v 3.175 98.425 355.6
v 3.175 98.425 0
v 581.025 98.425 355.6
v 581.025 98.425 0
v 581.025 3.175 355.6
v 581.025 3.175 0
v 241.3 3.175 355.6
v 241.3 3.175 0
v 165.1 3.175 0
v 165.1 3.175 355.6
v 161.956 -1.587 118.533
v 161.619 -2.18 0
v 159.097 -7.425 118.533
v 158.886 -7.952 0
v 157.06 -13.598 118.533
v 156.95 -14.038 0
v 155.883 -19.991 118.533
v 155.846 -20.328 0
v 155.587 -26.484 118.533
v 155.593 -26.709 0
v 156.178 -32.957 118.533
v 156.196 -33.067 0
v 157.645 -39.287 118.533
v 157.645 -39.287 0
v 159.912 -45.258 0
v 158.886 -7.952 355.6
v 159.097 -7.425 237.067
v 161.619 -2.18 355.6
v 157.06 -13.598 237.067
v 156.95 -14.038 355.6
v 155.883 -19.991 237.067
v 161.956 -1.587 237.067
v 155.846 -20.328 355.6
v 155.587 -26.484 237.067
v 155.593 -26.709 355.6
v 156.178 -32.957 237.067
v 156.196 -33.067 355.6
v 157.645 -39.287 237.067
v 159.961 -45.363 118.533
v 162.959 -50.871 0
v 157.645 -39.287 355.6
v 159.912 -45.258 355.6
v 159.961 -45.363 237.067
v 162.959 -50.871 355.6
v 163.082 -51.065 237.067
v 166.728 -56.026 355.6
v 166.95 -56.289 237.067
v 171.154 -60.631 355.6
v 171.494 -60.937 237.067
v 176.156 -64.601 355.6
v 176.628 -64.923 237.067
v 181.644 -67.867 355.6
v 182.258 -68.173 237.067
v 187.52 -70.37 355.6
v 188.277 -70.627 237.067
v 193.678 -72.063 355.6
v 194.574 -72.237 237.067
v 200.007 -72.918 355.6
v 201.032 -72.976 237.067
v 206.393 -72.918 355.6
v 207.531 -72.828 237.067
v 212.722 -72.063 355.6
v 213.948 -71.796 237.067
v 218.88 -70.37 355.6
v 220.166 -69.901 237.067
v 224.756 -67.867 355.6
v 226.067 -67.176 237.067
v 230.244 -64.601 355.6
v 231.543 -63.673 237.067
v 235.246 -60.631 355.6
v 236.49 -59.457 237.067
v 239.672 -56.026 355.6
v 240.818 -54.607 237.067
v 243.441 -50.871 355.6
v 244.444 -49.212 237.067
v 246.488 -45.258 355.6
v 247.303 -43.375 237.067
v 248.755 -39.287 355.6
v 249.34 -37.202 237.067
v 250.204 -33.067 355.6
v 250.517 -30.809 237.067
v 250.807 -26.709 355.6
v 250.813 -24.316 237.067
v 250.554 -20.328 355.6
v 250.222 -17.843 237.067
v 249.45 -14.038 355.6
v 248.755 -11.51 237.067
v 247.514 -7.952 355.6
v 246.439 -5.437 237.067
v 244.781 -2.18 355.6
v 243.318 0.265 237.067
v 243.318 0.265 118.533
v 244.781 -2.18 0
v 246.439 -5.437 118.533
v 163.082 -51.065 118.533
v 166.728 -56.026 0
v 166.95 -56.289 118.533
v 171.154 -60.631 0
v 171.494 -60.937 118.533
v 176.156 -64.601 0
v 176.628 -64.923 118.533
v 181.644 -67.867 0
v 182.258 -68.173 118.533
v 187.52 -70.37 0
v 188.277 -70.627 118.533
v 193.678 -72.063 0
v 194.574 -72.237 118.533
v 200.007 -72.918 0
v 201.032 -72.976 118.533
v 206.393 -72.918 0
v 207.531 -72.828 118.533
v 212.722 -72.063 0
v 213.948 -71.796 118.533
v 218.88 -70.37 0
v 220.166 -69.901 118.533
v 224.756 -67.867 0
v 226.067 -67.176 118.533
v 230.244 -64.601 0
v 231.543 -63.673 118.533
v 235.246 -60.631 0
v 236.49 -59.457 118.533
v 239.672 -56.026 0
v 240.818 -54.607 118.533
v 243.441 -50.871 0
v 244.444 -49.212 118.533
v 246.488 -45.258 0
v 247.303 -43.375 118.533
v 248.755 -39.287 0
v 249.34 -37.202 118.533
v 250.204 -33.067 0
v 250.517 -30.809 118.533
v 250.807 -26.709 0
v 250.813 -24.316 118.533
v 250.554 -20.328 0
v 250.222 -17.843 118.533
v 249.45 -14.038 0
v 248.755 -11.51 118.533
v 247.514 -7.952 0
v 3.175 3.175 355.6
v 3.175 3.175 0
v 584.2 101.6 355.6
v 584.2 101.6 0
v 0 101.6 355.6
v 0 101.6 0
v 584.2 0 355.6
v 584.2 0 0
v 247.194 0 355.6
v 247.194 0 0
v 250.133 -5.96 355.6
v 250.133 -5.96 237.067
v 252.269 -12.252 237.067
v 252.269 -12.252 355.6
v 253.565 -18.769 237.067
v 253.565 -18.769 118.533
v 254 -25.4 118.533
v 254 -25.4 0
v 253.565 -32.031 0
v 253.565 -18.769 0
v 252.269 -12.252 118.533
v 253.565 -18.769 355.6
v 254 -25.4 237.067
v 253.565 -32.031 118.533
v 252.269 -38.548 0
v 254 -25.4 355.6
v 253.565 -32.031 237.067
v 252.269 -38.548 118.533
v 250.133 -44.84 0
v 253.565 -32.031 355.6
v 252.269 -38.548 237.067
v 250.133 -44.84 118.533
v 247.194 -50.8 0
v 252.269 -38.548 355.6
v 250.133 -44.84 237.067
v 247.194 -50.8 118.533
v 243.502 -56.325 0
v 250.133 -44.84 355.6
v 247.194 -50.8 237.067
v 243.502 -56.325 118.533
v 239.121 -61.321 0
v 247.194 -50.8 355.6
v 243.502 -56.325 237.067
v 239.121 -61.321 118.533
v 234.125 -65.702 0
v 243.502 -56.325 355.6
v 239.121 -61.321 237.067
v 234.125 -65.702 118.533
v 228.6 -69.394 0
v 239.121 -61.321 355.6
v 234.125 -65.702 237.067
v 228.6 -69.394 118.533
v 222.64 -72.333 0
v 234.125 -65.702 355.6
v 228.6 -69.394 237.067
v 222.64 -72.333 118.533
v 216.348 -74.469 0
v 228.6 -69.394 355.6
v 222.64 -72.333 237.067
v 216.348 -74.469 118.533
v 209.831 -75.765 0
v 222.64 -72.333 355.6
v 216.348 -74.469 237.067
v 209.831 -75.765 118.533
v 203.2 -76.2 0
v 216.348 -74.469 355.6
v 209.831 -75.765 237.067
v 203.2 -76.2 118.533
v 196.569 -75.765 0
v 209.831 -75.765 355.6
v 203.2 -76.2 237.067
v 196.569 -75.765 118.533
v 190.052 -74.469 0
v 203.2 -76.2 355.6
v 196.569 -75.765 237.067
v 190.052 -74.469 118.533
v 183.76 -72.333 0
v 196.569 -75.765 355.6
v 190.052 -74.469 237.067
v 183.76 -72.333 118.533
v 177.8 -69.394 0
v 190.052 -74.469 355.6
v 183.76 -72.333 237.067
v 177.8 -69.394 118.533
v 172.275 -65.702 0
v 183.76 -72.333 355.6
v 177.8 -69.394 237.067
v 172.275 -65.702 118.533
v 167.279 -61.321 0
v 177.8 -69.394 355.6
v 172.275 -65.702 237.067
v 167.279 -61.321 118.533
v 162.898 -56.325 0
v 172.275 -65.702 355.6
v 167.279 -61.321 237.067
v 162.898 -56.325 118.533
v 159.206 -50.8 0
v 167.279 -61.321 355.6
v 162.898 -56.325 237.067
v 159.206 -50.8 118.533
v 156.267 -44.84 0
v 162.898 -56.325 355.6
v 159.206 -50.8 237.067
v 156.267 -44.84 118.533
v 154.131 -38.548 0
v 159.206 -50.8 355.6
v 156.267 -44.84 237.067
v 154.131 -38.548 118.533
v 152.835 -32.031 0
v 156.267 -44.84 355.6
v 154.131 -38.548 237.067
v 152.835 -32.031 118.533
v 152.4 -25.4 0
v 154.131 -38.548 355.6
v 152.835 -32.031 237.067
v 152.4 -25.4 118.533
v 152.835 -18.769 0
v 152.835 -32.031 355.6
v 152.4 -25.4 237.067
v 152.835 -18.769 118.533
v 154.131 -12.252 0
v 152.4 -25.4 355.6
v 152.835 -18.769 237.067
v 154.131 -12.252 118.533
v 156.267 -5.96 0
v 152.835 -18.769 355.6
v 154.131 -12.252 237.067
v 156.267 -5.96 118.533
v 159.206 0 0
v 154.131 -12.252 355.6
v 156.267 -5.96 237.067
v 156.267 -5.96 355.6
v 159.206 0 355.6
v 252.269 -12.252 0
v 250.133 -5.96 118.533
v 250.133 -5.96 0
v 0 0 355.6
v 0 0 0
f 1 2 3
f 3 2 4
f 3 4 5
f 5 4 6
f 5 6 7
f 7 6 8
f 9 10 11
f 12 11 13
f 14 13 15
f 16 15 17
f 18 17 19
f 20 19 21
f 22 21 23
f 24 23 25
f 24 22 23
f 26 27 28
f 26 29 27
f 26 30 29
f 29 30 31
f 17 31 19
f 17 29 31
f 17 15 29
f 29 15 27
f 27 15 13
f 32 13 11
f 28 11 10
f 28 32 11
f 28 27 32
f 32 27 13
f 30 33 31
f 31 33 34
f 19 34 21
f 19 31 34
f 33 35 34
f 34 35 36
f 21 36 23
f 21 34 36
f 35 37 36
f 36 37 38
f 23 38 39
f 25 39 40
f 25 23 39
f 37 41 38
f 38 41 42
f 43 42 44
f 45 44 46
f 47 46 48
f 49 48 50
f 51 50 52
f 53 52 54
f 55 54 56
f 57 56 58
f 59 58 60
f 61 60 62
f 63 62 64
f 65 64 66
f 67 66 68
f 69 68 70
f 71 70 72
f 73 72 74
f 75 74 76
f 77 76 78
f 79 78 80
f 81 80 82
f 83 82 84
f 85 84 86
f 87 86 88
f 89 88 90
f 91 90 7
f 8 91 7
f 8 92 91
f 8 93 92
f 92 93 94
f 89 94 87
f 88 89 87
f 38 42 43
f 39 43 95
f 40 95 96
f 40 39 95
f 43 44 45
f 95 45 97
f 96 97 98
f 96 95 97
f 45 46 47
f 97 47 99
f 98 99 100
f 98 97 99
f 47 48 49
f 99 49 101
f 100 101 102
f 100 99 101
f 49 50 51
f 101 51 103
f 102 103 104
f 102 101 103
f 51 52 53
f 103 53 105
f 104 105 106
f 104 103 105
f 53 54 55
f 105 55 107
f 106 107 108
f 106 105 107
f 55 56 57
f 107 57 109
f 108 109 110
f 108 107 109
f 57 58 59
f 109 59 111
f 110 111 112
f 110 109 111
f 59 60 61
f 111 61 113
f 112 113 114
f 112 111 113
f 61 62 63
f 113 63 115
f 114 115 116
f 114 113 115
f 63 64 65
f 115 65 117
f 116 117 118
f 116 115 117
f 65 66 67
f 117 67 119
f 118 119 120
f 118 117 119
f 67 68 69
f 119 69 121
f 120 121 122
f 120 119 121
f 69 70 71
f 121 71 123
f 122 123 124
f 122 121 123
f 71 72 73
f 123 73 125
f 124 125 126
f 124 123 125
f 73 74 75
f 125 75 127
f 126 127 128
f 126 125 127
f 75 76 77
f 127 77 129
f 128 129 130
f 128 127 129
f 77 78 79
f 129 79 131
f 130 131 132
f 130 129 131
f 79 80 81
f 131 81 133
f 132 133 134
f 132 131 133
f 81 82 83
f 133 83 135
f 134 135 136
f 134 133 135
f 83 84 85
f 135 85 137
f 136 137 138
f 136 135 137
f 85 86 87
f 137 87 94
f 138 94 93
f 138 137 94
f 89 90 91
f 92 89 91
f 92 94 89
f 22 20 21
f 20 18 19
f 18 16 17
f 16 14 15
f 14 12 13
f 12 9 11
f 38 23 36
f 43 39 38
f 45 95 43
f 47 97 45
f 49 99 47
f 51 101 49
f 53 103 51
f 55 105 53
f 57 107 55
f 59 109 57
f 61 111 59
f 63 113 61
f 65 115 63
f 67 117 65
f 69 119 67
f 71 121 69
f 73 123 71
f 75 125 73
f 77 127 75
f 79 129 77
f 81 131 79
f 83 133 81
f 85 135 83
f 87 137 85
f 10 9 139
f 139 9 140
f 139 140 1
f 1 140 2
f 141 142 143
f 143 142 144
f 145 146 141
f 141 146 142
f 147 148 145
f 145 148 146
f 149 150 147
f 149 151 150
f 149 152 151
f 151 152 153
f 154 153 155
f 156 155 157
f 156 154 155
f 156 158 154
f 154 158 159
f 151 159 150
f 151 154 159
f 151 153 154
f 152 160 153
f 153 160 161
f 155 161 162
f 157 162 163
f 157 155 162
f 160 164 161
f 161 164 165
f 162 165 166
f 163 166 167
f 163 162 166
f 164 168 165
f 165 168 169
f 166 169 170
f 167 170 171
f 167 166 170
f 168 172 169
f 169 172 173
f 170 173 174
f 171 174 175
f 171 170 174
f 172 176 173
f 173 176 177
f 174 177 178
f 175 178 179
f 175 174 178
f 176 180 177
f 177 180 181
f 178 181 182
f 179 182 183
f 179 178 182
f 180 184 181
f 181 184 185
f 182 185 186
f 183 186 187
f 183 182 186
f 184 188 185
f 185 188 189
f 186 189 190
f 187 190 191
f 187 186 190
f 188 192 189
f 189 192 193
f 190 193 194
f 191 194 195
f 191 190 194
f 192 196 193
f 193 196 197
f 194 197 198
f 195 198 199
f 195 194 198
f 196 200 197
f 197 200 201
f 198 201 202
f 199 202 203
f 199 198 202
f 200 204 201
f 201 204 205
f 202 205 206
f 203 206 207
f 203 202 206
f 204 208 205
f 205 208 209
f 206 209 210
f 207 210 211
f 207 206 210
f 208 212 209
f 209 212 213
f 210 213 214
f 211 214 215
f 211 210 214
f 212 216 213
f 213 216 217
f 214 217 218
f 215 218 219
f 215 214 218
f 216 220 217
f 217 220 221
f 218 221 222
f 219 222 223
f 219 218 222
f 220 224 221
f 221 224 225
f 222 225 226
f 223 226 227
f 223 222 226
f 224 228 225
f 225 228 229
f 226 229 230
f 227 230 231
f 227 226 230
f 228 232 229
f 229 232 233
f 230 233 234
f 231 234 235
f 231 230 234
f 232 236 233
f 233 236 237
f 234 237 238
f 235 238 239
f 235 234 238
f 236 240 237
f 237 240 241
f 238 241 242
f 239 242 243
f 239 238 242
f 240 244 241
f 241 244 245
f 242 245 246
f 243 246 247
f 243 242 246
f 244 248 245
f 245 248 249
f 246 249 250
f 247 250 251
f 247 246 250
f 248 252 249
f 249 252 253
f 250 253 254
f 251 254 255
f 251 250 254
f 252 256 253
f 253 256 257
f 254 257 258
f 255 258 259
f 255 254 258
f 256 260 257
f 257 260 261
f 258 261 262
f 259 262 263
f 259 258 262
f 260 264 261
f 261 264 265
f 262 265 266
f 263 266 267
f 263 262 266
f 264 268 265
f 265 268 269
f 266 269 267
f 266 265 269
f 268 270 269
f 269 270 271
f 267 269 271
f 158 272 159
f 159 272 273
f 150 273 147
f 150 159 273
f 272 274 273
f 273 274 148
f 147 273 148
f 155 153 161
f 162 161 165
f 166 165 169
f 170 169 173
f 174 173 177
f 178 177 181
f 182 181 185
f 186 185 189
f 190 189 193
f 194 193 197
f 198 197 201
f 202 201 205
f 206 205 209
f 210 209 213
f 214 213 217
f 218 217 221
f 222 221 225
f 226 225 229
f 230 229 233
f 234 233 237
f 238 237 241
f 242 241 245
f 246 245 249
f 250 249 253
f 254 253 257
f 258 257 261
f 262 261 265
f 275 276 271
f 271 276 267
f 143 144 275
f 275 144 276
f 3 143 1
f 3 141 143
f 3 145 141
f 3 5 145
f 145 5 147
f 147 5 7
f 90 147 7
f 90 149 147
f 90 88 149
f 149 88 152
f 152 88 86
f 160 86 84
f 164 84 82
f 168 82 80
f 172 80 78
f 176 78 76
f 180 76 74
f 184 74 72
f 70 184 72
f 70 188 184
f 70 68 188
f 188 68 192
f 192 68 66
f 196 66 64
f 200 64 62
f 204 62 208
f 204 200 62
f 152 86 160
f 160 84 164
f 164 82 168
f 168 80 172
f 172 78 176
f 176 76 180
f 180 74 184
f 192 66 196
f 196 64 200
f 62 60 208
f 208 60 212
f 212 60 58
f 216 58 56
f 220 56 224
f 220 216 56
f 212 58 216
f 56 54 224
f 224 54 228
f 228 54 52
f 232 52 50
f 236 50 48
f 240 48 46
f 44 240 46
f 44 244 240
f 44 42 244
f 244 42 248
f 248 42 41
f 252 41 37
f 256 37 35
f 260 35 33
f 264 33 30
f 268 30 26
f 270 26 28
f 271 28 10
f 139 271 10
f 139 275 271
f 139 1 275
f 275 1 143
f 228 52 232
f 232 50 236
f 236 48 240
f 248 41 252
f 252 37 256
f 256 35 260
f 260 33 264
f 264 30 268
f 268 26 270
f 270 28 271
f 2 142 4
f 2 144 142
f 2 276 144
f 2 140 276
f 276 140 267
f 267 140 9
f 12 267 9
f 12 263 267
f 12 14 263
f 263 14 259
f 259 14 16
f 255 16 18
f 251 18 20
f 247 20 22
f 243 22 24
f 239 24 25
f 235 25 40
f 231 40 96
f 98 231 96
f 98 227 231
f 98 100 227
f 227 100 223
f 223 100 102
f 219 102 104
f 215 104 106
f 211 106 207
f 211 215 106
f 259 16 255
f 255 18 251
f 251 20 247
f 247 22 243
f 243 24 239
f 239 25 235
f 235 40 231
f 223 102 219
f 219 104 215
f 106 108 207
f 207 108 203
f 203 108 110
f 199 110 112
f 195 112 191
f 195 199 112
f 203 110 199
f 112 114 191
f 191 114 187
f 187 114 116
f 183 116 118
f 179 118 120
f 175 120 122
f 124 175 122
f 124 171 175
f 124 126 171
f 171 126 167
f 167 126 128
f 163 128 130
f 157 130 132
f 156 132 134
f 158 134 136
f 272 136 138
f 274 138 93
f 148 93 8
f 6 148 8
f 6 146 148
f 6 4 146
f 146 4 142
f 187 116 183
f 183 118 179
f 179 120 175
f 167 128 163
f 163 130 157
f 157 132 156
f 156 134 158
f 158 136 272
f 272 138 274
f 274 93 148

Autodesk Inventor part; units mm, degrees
ref_plane "YZ Plane" through (0, 0, 0) normal (1, 0, 0) x (0, 1, 0)
ref_plane "XZ Plane" through (0, 0, 0) normal (0, 1, 0) x (-1, 0, 0)
ref_plane "XY Plane" through (0, 0, 0) normal (0, 0, 1) x (1, 0, 0)
sketch "Sketch1" plane through (0, 0, 0) normal (0, 0, 1) x (1, 0, 0)
  line L0 (584.2, 0) -> (584.2, 101.6)
  line L1 (584.2, 101.6) -> (0, 101.6)
  line L2 (0, 101.6) -> (0, 0)
  line L3 (0, 0) -> (159.2059, 0)
  line L4 (247.1941, 0) -> (584.2, 0)
  arc A0 (159.2059, 0) -> (247.1941, 0) centre (203.2, -25.4) ccw
  dimension "d2" = 101.6
  dimension "d4" = 203.2
  dimension "d5" = 50.8
  dimension "d6" = 25.4
  dimension "d8" = 584.2
extrude "Extrusion1" add sketch "Sketch1" along normal blind 355.6
shell "Shell1" thickness 3.175 removed faces 2 at (277.1314, 67.7333, 0) at (277.1314, 67.7333, 355.6)
properties part number "LauncherMockup"
